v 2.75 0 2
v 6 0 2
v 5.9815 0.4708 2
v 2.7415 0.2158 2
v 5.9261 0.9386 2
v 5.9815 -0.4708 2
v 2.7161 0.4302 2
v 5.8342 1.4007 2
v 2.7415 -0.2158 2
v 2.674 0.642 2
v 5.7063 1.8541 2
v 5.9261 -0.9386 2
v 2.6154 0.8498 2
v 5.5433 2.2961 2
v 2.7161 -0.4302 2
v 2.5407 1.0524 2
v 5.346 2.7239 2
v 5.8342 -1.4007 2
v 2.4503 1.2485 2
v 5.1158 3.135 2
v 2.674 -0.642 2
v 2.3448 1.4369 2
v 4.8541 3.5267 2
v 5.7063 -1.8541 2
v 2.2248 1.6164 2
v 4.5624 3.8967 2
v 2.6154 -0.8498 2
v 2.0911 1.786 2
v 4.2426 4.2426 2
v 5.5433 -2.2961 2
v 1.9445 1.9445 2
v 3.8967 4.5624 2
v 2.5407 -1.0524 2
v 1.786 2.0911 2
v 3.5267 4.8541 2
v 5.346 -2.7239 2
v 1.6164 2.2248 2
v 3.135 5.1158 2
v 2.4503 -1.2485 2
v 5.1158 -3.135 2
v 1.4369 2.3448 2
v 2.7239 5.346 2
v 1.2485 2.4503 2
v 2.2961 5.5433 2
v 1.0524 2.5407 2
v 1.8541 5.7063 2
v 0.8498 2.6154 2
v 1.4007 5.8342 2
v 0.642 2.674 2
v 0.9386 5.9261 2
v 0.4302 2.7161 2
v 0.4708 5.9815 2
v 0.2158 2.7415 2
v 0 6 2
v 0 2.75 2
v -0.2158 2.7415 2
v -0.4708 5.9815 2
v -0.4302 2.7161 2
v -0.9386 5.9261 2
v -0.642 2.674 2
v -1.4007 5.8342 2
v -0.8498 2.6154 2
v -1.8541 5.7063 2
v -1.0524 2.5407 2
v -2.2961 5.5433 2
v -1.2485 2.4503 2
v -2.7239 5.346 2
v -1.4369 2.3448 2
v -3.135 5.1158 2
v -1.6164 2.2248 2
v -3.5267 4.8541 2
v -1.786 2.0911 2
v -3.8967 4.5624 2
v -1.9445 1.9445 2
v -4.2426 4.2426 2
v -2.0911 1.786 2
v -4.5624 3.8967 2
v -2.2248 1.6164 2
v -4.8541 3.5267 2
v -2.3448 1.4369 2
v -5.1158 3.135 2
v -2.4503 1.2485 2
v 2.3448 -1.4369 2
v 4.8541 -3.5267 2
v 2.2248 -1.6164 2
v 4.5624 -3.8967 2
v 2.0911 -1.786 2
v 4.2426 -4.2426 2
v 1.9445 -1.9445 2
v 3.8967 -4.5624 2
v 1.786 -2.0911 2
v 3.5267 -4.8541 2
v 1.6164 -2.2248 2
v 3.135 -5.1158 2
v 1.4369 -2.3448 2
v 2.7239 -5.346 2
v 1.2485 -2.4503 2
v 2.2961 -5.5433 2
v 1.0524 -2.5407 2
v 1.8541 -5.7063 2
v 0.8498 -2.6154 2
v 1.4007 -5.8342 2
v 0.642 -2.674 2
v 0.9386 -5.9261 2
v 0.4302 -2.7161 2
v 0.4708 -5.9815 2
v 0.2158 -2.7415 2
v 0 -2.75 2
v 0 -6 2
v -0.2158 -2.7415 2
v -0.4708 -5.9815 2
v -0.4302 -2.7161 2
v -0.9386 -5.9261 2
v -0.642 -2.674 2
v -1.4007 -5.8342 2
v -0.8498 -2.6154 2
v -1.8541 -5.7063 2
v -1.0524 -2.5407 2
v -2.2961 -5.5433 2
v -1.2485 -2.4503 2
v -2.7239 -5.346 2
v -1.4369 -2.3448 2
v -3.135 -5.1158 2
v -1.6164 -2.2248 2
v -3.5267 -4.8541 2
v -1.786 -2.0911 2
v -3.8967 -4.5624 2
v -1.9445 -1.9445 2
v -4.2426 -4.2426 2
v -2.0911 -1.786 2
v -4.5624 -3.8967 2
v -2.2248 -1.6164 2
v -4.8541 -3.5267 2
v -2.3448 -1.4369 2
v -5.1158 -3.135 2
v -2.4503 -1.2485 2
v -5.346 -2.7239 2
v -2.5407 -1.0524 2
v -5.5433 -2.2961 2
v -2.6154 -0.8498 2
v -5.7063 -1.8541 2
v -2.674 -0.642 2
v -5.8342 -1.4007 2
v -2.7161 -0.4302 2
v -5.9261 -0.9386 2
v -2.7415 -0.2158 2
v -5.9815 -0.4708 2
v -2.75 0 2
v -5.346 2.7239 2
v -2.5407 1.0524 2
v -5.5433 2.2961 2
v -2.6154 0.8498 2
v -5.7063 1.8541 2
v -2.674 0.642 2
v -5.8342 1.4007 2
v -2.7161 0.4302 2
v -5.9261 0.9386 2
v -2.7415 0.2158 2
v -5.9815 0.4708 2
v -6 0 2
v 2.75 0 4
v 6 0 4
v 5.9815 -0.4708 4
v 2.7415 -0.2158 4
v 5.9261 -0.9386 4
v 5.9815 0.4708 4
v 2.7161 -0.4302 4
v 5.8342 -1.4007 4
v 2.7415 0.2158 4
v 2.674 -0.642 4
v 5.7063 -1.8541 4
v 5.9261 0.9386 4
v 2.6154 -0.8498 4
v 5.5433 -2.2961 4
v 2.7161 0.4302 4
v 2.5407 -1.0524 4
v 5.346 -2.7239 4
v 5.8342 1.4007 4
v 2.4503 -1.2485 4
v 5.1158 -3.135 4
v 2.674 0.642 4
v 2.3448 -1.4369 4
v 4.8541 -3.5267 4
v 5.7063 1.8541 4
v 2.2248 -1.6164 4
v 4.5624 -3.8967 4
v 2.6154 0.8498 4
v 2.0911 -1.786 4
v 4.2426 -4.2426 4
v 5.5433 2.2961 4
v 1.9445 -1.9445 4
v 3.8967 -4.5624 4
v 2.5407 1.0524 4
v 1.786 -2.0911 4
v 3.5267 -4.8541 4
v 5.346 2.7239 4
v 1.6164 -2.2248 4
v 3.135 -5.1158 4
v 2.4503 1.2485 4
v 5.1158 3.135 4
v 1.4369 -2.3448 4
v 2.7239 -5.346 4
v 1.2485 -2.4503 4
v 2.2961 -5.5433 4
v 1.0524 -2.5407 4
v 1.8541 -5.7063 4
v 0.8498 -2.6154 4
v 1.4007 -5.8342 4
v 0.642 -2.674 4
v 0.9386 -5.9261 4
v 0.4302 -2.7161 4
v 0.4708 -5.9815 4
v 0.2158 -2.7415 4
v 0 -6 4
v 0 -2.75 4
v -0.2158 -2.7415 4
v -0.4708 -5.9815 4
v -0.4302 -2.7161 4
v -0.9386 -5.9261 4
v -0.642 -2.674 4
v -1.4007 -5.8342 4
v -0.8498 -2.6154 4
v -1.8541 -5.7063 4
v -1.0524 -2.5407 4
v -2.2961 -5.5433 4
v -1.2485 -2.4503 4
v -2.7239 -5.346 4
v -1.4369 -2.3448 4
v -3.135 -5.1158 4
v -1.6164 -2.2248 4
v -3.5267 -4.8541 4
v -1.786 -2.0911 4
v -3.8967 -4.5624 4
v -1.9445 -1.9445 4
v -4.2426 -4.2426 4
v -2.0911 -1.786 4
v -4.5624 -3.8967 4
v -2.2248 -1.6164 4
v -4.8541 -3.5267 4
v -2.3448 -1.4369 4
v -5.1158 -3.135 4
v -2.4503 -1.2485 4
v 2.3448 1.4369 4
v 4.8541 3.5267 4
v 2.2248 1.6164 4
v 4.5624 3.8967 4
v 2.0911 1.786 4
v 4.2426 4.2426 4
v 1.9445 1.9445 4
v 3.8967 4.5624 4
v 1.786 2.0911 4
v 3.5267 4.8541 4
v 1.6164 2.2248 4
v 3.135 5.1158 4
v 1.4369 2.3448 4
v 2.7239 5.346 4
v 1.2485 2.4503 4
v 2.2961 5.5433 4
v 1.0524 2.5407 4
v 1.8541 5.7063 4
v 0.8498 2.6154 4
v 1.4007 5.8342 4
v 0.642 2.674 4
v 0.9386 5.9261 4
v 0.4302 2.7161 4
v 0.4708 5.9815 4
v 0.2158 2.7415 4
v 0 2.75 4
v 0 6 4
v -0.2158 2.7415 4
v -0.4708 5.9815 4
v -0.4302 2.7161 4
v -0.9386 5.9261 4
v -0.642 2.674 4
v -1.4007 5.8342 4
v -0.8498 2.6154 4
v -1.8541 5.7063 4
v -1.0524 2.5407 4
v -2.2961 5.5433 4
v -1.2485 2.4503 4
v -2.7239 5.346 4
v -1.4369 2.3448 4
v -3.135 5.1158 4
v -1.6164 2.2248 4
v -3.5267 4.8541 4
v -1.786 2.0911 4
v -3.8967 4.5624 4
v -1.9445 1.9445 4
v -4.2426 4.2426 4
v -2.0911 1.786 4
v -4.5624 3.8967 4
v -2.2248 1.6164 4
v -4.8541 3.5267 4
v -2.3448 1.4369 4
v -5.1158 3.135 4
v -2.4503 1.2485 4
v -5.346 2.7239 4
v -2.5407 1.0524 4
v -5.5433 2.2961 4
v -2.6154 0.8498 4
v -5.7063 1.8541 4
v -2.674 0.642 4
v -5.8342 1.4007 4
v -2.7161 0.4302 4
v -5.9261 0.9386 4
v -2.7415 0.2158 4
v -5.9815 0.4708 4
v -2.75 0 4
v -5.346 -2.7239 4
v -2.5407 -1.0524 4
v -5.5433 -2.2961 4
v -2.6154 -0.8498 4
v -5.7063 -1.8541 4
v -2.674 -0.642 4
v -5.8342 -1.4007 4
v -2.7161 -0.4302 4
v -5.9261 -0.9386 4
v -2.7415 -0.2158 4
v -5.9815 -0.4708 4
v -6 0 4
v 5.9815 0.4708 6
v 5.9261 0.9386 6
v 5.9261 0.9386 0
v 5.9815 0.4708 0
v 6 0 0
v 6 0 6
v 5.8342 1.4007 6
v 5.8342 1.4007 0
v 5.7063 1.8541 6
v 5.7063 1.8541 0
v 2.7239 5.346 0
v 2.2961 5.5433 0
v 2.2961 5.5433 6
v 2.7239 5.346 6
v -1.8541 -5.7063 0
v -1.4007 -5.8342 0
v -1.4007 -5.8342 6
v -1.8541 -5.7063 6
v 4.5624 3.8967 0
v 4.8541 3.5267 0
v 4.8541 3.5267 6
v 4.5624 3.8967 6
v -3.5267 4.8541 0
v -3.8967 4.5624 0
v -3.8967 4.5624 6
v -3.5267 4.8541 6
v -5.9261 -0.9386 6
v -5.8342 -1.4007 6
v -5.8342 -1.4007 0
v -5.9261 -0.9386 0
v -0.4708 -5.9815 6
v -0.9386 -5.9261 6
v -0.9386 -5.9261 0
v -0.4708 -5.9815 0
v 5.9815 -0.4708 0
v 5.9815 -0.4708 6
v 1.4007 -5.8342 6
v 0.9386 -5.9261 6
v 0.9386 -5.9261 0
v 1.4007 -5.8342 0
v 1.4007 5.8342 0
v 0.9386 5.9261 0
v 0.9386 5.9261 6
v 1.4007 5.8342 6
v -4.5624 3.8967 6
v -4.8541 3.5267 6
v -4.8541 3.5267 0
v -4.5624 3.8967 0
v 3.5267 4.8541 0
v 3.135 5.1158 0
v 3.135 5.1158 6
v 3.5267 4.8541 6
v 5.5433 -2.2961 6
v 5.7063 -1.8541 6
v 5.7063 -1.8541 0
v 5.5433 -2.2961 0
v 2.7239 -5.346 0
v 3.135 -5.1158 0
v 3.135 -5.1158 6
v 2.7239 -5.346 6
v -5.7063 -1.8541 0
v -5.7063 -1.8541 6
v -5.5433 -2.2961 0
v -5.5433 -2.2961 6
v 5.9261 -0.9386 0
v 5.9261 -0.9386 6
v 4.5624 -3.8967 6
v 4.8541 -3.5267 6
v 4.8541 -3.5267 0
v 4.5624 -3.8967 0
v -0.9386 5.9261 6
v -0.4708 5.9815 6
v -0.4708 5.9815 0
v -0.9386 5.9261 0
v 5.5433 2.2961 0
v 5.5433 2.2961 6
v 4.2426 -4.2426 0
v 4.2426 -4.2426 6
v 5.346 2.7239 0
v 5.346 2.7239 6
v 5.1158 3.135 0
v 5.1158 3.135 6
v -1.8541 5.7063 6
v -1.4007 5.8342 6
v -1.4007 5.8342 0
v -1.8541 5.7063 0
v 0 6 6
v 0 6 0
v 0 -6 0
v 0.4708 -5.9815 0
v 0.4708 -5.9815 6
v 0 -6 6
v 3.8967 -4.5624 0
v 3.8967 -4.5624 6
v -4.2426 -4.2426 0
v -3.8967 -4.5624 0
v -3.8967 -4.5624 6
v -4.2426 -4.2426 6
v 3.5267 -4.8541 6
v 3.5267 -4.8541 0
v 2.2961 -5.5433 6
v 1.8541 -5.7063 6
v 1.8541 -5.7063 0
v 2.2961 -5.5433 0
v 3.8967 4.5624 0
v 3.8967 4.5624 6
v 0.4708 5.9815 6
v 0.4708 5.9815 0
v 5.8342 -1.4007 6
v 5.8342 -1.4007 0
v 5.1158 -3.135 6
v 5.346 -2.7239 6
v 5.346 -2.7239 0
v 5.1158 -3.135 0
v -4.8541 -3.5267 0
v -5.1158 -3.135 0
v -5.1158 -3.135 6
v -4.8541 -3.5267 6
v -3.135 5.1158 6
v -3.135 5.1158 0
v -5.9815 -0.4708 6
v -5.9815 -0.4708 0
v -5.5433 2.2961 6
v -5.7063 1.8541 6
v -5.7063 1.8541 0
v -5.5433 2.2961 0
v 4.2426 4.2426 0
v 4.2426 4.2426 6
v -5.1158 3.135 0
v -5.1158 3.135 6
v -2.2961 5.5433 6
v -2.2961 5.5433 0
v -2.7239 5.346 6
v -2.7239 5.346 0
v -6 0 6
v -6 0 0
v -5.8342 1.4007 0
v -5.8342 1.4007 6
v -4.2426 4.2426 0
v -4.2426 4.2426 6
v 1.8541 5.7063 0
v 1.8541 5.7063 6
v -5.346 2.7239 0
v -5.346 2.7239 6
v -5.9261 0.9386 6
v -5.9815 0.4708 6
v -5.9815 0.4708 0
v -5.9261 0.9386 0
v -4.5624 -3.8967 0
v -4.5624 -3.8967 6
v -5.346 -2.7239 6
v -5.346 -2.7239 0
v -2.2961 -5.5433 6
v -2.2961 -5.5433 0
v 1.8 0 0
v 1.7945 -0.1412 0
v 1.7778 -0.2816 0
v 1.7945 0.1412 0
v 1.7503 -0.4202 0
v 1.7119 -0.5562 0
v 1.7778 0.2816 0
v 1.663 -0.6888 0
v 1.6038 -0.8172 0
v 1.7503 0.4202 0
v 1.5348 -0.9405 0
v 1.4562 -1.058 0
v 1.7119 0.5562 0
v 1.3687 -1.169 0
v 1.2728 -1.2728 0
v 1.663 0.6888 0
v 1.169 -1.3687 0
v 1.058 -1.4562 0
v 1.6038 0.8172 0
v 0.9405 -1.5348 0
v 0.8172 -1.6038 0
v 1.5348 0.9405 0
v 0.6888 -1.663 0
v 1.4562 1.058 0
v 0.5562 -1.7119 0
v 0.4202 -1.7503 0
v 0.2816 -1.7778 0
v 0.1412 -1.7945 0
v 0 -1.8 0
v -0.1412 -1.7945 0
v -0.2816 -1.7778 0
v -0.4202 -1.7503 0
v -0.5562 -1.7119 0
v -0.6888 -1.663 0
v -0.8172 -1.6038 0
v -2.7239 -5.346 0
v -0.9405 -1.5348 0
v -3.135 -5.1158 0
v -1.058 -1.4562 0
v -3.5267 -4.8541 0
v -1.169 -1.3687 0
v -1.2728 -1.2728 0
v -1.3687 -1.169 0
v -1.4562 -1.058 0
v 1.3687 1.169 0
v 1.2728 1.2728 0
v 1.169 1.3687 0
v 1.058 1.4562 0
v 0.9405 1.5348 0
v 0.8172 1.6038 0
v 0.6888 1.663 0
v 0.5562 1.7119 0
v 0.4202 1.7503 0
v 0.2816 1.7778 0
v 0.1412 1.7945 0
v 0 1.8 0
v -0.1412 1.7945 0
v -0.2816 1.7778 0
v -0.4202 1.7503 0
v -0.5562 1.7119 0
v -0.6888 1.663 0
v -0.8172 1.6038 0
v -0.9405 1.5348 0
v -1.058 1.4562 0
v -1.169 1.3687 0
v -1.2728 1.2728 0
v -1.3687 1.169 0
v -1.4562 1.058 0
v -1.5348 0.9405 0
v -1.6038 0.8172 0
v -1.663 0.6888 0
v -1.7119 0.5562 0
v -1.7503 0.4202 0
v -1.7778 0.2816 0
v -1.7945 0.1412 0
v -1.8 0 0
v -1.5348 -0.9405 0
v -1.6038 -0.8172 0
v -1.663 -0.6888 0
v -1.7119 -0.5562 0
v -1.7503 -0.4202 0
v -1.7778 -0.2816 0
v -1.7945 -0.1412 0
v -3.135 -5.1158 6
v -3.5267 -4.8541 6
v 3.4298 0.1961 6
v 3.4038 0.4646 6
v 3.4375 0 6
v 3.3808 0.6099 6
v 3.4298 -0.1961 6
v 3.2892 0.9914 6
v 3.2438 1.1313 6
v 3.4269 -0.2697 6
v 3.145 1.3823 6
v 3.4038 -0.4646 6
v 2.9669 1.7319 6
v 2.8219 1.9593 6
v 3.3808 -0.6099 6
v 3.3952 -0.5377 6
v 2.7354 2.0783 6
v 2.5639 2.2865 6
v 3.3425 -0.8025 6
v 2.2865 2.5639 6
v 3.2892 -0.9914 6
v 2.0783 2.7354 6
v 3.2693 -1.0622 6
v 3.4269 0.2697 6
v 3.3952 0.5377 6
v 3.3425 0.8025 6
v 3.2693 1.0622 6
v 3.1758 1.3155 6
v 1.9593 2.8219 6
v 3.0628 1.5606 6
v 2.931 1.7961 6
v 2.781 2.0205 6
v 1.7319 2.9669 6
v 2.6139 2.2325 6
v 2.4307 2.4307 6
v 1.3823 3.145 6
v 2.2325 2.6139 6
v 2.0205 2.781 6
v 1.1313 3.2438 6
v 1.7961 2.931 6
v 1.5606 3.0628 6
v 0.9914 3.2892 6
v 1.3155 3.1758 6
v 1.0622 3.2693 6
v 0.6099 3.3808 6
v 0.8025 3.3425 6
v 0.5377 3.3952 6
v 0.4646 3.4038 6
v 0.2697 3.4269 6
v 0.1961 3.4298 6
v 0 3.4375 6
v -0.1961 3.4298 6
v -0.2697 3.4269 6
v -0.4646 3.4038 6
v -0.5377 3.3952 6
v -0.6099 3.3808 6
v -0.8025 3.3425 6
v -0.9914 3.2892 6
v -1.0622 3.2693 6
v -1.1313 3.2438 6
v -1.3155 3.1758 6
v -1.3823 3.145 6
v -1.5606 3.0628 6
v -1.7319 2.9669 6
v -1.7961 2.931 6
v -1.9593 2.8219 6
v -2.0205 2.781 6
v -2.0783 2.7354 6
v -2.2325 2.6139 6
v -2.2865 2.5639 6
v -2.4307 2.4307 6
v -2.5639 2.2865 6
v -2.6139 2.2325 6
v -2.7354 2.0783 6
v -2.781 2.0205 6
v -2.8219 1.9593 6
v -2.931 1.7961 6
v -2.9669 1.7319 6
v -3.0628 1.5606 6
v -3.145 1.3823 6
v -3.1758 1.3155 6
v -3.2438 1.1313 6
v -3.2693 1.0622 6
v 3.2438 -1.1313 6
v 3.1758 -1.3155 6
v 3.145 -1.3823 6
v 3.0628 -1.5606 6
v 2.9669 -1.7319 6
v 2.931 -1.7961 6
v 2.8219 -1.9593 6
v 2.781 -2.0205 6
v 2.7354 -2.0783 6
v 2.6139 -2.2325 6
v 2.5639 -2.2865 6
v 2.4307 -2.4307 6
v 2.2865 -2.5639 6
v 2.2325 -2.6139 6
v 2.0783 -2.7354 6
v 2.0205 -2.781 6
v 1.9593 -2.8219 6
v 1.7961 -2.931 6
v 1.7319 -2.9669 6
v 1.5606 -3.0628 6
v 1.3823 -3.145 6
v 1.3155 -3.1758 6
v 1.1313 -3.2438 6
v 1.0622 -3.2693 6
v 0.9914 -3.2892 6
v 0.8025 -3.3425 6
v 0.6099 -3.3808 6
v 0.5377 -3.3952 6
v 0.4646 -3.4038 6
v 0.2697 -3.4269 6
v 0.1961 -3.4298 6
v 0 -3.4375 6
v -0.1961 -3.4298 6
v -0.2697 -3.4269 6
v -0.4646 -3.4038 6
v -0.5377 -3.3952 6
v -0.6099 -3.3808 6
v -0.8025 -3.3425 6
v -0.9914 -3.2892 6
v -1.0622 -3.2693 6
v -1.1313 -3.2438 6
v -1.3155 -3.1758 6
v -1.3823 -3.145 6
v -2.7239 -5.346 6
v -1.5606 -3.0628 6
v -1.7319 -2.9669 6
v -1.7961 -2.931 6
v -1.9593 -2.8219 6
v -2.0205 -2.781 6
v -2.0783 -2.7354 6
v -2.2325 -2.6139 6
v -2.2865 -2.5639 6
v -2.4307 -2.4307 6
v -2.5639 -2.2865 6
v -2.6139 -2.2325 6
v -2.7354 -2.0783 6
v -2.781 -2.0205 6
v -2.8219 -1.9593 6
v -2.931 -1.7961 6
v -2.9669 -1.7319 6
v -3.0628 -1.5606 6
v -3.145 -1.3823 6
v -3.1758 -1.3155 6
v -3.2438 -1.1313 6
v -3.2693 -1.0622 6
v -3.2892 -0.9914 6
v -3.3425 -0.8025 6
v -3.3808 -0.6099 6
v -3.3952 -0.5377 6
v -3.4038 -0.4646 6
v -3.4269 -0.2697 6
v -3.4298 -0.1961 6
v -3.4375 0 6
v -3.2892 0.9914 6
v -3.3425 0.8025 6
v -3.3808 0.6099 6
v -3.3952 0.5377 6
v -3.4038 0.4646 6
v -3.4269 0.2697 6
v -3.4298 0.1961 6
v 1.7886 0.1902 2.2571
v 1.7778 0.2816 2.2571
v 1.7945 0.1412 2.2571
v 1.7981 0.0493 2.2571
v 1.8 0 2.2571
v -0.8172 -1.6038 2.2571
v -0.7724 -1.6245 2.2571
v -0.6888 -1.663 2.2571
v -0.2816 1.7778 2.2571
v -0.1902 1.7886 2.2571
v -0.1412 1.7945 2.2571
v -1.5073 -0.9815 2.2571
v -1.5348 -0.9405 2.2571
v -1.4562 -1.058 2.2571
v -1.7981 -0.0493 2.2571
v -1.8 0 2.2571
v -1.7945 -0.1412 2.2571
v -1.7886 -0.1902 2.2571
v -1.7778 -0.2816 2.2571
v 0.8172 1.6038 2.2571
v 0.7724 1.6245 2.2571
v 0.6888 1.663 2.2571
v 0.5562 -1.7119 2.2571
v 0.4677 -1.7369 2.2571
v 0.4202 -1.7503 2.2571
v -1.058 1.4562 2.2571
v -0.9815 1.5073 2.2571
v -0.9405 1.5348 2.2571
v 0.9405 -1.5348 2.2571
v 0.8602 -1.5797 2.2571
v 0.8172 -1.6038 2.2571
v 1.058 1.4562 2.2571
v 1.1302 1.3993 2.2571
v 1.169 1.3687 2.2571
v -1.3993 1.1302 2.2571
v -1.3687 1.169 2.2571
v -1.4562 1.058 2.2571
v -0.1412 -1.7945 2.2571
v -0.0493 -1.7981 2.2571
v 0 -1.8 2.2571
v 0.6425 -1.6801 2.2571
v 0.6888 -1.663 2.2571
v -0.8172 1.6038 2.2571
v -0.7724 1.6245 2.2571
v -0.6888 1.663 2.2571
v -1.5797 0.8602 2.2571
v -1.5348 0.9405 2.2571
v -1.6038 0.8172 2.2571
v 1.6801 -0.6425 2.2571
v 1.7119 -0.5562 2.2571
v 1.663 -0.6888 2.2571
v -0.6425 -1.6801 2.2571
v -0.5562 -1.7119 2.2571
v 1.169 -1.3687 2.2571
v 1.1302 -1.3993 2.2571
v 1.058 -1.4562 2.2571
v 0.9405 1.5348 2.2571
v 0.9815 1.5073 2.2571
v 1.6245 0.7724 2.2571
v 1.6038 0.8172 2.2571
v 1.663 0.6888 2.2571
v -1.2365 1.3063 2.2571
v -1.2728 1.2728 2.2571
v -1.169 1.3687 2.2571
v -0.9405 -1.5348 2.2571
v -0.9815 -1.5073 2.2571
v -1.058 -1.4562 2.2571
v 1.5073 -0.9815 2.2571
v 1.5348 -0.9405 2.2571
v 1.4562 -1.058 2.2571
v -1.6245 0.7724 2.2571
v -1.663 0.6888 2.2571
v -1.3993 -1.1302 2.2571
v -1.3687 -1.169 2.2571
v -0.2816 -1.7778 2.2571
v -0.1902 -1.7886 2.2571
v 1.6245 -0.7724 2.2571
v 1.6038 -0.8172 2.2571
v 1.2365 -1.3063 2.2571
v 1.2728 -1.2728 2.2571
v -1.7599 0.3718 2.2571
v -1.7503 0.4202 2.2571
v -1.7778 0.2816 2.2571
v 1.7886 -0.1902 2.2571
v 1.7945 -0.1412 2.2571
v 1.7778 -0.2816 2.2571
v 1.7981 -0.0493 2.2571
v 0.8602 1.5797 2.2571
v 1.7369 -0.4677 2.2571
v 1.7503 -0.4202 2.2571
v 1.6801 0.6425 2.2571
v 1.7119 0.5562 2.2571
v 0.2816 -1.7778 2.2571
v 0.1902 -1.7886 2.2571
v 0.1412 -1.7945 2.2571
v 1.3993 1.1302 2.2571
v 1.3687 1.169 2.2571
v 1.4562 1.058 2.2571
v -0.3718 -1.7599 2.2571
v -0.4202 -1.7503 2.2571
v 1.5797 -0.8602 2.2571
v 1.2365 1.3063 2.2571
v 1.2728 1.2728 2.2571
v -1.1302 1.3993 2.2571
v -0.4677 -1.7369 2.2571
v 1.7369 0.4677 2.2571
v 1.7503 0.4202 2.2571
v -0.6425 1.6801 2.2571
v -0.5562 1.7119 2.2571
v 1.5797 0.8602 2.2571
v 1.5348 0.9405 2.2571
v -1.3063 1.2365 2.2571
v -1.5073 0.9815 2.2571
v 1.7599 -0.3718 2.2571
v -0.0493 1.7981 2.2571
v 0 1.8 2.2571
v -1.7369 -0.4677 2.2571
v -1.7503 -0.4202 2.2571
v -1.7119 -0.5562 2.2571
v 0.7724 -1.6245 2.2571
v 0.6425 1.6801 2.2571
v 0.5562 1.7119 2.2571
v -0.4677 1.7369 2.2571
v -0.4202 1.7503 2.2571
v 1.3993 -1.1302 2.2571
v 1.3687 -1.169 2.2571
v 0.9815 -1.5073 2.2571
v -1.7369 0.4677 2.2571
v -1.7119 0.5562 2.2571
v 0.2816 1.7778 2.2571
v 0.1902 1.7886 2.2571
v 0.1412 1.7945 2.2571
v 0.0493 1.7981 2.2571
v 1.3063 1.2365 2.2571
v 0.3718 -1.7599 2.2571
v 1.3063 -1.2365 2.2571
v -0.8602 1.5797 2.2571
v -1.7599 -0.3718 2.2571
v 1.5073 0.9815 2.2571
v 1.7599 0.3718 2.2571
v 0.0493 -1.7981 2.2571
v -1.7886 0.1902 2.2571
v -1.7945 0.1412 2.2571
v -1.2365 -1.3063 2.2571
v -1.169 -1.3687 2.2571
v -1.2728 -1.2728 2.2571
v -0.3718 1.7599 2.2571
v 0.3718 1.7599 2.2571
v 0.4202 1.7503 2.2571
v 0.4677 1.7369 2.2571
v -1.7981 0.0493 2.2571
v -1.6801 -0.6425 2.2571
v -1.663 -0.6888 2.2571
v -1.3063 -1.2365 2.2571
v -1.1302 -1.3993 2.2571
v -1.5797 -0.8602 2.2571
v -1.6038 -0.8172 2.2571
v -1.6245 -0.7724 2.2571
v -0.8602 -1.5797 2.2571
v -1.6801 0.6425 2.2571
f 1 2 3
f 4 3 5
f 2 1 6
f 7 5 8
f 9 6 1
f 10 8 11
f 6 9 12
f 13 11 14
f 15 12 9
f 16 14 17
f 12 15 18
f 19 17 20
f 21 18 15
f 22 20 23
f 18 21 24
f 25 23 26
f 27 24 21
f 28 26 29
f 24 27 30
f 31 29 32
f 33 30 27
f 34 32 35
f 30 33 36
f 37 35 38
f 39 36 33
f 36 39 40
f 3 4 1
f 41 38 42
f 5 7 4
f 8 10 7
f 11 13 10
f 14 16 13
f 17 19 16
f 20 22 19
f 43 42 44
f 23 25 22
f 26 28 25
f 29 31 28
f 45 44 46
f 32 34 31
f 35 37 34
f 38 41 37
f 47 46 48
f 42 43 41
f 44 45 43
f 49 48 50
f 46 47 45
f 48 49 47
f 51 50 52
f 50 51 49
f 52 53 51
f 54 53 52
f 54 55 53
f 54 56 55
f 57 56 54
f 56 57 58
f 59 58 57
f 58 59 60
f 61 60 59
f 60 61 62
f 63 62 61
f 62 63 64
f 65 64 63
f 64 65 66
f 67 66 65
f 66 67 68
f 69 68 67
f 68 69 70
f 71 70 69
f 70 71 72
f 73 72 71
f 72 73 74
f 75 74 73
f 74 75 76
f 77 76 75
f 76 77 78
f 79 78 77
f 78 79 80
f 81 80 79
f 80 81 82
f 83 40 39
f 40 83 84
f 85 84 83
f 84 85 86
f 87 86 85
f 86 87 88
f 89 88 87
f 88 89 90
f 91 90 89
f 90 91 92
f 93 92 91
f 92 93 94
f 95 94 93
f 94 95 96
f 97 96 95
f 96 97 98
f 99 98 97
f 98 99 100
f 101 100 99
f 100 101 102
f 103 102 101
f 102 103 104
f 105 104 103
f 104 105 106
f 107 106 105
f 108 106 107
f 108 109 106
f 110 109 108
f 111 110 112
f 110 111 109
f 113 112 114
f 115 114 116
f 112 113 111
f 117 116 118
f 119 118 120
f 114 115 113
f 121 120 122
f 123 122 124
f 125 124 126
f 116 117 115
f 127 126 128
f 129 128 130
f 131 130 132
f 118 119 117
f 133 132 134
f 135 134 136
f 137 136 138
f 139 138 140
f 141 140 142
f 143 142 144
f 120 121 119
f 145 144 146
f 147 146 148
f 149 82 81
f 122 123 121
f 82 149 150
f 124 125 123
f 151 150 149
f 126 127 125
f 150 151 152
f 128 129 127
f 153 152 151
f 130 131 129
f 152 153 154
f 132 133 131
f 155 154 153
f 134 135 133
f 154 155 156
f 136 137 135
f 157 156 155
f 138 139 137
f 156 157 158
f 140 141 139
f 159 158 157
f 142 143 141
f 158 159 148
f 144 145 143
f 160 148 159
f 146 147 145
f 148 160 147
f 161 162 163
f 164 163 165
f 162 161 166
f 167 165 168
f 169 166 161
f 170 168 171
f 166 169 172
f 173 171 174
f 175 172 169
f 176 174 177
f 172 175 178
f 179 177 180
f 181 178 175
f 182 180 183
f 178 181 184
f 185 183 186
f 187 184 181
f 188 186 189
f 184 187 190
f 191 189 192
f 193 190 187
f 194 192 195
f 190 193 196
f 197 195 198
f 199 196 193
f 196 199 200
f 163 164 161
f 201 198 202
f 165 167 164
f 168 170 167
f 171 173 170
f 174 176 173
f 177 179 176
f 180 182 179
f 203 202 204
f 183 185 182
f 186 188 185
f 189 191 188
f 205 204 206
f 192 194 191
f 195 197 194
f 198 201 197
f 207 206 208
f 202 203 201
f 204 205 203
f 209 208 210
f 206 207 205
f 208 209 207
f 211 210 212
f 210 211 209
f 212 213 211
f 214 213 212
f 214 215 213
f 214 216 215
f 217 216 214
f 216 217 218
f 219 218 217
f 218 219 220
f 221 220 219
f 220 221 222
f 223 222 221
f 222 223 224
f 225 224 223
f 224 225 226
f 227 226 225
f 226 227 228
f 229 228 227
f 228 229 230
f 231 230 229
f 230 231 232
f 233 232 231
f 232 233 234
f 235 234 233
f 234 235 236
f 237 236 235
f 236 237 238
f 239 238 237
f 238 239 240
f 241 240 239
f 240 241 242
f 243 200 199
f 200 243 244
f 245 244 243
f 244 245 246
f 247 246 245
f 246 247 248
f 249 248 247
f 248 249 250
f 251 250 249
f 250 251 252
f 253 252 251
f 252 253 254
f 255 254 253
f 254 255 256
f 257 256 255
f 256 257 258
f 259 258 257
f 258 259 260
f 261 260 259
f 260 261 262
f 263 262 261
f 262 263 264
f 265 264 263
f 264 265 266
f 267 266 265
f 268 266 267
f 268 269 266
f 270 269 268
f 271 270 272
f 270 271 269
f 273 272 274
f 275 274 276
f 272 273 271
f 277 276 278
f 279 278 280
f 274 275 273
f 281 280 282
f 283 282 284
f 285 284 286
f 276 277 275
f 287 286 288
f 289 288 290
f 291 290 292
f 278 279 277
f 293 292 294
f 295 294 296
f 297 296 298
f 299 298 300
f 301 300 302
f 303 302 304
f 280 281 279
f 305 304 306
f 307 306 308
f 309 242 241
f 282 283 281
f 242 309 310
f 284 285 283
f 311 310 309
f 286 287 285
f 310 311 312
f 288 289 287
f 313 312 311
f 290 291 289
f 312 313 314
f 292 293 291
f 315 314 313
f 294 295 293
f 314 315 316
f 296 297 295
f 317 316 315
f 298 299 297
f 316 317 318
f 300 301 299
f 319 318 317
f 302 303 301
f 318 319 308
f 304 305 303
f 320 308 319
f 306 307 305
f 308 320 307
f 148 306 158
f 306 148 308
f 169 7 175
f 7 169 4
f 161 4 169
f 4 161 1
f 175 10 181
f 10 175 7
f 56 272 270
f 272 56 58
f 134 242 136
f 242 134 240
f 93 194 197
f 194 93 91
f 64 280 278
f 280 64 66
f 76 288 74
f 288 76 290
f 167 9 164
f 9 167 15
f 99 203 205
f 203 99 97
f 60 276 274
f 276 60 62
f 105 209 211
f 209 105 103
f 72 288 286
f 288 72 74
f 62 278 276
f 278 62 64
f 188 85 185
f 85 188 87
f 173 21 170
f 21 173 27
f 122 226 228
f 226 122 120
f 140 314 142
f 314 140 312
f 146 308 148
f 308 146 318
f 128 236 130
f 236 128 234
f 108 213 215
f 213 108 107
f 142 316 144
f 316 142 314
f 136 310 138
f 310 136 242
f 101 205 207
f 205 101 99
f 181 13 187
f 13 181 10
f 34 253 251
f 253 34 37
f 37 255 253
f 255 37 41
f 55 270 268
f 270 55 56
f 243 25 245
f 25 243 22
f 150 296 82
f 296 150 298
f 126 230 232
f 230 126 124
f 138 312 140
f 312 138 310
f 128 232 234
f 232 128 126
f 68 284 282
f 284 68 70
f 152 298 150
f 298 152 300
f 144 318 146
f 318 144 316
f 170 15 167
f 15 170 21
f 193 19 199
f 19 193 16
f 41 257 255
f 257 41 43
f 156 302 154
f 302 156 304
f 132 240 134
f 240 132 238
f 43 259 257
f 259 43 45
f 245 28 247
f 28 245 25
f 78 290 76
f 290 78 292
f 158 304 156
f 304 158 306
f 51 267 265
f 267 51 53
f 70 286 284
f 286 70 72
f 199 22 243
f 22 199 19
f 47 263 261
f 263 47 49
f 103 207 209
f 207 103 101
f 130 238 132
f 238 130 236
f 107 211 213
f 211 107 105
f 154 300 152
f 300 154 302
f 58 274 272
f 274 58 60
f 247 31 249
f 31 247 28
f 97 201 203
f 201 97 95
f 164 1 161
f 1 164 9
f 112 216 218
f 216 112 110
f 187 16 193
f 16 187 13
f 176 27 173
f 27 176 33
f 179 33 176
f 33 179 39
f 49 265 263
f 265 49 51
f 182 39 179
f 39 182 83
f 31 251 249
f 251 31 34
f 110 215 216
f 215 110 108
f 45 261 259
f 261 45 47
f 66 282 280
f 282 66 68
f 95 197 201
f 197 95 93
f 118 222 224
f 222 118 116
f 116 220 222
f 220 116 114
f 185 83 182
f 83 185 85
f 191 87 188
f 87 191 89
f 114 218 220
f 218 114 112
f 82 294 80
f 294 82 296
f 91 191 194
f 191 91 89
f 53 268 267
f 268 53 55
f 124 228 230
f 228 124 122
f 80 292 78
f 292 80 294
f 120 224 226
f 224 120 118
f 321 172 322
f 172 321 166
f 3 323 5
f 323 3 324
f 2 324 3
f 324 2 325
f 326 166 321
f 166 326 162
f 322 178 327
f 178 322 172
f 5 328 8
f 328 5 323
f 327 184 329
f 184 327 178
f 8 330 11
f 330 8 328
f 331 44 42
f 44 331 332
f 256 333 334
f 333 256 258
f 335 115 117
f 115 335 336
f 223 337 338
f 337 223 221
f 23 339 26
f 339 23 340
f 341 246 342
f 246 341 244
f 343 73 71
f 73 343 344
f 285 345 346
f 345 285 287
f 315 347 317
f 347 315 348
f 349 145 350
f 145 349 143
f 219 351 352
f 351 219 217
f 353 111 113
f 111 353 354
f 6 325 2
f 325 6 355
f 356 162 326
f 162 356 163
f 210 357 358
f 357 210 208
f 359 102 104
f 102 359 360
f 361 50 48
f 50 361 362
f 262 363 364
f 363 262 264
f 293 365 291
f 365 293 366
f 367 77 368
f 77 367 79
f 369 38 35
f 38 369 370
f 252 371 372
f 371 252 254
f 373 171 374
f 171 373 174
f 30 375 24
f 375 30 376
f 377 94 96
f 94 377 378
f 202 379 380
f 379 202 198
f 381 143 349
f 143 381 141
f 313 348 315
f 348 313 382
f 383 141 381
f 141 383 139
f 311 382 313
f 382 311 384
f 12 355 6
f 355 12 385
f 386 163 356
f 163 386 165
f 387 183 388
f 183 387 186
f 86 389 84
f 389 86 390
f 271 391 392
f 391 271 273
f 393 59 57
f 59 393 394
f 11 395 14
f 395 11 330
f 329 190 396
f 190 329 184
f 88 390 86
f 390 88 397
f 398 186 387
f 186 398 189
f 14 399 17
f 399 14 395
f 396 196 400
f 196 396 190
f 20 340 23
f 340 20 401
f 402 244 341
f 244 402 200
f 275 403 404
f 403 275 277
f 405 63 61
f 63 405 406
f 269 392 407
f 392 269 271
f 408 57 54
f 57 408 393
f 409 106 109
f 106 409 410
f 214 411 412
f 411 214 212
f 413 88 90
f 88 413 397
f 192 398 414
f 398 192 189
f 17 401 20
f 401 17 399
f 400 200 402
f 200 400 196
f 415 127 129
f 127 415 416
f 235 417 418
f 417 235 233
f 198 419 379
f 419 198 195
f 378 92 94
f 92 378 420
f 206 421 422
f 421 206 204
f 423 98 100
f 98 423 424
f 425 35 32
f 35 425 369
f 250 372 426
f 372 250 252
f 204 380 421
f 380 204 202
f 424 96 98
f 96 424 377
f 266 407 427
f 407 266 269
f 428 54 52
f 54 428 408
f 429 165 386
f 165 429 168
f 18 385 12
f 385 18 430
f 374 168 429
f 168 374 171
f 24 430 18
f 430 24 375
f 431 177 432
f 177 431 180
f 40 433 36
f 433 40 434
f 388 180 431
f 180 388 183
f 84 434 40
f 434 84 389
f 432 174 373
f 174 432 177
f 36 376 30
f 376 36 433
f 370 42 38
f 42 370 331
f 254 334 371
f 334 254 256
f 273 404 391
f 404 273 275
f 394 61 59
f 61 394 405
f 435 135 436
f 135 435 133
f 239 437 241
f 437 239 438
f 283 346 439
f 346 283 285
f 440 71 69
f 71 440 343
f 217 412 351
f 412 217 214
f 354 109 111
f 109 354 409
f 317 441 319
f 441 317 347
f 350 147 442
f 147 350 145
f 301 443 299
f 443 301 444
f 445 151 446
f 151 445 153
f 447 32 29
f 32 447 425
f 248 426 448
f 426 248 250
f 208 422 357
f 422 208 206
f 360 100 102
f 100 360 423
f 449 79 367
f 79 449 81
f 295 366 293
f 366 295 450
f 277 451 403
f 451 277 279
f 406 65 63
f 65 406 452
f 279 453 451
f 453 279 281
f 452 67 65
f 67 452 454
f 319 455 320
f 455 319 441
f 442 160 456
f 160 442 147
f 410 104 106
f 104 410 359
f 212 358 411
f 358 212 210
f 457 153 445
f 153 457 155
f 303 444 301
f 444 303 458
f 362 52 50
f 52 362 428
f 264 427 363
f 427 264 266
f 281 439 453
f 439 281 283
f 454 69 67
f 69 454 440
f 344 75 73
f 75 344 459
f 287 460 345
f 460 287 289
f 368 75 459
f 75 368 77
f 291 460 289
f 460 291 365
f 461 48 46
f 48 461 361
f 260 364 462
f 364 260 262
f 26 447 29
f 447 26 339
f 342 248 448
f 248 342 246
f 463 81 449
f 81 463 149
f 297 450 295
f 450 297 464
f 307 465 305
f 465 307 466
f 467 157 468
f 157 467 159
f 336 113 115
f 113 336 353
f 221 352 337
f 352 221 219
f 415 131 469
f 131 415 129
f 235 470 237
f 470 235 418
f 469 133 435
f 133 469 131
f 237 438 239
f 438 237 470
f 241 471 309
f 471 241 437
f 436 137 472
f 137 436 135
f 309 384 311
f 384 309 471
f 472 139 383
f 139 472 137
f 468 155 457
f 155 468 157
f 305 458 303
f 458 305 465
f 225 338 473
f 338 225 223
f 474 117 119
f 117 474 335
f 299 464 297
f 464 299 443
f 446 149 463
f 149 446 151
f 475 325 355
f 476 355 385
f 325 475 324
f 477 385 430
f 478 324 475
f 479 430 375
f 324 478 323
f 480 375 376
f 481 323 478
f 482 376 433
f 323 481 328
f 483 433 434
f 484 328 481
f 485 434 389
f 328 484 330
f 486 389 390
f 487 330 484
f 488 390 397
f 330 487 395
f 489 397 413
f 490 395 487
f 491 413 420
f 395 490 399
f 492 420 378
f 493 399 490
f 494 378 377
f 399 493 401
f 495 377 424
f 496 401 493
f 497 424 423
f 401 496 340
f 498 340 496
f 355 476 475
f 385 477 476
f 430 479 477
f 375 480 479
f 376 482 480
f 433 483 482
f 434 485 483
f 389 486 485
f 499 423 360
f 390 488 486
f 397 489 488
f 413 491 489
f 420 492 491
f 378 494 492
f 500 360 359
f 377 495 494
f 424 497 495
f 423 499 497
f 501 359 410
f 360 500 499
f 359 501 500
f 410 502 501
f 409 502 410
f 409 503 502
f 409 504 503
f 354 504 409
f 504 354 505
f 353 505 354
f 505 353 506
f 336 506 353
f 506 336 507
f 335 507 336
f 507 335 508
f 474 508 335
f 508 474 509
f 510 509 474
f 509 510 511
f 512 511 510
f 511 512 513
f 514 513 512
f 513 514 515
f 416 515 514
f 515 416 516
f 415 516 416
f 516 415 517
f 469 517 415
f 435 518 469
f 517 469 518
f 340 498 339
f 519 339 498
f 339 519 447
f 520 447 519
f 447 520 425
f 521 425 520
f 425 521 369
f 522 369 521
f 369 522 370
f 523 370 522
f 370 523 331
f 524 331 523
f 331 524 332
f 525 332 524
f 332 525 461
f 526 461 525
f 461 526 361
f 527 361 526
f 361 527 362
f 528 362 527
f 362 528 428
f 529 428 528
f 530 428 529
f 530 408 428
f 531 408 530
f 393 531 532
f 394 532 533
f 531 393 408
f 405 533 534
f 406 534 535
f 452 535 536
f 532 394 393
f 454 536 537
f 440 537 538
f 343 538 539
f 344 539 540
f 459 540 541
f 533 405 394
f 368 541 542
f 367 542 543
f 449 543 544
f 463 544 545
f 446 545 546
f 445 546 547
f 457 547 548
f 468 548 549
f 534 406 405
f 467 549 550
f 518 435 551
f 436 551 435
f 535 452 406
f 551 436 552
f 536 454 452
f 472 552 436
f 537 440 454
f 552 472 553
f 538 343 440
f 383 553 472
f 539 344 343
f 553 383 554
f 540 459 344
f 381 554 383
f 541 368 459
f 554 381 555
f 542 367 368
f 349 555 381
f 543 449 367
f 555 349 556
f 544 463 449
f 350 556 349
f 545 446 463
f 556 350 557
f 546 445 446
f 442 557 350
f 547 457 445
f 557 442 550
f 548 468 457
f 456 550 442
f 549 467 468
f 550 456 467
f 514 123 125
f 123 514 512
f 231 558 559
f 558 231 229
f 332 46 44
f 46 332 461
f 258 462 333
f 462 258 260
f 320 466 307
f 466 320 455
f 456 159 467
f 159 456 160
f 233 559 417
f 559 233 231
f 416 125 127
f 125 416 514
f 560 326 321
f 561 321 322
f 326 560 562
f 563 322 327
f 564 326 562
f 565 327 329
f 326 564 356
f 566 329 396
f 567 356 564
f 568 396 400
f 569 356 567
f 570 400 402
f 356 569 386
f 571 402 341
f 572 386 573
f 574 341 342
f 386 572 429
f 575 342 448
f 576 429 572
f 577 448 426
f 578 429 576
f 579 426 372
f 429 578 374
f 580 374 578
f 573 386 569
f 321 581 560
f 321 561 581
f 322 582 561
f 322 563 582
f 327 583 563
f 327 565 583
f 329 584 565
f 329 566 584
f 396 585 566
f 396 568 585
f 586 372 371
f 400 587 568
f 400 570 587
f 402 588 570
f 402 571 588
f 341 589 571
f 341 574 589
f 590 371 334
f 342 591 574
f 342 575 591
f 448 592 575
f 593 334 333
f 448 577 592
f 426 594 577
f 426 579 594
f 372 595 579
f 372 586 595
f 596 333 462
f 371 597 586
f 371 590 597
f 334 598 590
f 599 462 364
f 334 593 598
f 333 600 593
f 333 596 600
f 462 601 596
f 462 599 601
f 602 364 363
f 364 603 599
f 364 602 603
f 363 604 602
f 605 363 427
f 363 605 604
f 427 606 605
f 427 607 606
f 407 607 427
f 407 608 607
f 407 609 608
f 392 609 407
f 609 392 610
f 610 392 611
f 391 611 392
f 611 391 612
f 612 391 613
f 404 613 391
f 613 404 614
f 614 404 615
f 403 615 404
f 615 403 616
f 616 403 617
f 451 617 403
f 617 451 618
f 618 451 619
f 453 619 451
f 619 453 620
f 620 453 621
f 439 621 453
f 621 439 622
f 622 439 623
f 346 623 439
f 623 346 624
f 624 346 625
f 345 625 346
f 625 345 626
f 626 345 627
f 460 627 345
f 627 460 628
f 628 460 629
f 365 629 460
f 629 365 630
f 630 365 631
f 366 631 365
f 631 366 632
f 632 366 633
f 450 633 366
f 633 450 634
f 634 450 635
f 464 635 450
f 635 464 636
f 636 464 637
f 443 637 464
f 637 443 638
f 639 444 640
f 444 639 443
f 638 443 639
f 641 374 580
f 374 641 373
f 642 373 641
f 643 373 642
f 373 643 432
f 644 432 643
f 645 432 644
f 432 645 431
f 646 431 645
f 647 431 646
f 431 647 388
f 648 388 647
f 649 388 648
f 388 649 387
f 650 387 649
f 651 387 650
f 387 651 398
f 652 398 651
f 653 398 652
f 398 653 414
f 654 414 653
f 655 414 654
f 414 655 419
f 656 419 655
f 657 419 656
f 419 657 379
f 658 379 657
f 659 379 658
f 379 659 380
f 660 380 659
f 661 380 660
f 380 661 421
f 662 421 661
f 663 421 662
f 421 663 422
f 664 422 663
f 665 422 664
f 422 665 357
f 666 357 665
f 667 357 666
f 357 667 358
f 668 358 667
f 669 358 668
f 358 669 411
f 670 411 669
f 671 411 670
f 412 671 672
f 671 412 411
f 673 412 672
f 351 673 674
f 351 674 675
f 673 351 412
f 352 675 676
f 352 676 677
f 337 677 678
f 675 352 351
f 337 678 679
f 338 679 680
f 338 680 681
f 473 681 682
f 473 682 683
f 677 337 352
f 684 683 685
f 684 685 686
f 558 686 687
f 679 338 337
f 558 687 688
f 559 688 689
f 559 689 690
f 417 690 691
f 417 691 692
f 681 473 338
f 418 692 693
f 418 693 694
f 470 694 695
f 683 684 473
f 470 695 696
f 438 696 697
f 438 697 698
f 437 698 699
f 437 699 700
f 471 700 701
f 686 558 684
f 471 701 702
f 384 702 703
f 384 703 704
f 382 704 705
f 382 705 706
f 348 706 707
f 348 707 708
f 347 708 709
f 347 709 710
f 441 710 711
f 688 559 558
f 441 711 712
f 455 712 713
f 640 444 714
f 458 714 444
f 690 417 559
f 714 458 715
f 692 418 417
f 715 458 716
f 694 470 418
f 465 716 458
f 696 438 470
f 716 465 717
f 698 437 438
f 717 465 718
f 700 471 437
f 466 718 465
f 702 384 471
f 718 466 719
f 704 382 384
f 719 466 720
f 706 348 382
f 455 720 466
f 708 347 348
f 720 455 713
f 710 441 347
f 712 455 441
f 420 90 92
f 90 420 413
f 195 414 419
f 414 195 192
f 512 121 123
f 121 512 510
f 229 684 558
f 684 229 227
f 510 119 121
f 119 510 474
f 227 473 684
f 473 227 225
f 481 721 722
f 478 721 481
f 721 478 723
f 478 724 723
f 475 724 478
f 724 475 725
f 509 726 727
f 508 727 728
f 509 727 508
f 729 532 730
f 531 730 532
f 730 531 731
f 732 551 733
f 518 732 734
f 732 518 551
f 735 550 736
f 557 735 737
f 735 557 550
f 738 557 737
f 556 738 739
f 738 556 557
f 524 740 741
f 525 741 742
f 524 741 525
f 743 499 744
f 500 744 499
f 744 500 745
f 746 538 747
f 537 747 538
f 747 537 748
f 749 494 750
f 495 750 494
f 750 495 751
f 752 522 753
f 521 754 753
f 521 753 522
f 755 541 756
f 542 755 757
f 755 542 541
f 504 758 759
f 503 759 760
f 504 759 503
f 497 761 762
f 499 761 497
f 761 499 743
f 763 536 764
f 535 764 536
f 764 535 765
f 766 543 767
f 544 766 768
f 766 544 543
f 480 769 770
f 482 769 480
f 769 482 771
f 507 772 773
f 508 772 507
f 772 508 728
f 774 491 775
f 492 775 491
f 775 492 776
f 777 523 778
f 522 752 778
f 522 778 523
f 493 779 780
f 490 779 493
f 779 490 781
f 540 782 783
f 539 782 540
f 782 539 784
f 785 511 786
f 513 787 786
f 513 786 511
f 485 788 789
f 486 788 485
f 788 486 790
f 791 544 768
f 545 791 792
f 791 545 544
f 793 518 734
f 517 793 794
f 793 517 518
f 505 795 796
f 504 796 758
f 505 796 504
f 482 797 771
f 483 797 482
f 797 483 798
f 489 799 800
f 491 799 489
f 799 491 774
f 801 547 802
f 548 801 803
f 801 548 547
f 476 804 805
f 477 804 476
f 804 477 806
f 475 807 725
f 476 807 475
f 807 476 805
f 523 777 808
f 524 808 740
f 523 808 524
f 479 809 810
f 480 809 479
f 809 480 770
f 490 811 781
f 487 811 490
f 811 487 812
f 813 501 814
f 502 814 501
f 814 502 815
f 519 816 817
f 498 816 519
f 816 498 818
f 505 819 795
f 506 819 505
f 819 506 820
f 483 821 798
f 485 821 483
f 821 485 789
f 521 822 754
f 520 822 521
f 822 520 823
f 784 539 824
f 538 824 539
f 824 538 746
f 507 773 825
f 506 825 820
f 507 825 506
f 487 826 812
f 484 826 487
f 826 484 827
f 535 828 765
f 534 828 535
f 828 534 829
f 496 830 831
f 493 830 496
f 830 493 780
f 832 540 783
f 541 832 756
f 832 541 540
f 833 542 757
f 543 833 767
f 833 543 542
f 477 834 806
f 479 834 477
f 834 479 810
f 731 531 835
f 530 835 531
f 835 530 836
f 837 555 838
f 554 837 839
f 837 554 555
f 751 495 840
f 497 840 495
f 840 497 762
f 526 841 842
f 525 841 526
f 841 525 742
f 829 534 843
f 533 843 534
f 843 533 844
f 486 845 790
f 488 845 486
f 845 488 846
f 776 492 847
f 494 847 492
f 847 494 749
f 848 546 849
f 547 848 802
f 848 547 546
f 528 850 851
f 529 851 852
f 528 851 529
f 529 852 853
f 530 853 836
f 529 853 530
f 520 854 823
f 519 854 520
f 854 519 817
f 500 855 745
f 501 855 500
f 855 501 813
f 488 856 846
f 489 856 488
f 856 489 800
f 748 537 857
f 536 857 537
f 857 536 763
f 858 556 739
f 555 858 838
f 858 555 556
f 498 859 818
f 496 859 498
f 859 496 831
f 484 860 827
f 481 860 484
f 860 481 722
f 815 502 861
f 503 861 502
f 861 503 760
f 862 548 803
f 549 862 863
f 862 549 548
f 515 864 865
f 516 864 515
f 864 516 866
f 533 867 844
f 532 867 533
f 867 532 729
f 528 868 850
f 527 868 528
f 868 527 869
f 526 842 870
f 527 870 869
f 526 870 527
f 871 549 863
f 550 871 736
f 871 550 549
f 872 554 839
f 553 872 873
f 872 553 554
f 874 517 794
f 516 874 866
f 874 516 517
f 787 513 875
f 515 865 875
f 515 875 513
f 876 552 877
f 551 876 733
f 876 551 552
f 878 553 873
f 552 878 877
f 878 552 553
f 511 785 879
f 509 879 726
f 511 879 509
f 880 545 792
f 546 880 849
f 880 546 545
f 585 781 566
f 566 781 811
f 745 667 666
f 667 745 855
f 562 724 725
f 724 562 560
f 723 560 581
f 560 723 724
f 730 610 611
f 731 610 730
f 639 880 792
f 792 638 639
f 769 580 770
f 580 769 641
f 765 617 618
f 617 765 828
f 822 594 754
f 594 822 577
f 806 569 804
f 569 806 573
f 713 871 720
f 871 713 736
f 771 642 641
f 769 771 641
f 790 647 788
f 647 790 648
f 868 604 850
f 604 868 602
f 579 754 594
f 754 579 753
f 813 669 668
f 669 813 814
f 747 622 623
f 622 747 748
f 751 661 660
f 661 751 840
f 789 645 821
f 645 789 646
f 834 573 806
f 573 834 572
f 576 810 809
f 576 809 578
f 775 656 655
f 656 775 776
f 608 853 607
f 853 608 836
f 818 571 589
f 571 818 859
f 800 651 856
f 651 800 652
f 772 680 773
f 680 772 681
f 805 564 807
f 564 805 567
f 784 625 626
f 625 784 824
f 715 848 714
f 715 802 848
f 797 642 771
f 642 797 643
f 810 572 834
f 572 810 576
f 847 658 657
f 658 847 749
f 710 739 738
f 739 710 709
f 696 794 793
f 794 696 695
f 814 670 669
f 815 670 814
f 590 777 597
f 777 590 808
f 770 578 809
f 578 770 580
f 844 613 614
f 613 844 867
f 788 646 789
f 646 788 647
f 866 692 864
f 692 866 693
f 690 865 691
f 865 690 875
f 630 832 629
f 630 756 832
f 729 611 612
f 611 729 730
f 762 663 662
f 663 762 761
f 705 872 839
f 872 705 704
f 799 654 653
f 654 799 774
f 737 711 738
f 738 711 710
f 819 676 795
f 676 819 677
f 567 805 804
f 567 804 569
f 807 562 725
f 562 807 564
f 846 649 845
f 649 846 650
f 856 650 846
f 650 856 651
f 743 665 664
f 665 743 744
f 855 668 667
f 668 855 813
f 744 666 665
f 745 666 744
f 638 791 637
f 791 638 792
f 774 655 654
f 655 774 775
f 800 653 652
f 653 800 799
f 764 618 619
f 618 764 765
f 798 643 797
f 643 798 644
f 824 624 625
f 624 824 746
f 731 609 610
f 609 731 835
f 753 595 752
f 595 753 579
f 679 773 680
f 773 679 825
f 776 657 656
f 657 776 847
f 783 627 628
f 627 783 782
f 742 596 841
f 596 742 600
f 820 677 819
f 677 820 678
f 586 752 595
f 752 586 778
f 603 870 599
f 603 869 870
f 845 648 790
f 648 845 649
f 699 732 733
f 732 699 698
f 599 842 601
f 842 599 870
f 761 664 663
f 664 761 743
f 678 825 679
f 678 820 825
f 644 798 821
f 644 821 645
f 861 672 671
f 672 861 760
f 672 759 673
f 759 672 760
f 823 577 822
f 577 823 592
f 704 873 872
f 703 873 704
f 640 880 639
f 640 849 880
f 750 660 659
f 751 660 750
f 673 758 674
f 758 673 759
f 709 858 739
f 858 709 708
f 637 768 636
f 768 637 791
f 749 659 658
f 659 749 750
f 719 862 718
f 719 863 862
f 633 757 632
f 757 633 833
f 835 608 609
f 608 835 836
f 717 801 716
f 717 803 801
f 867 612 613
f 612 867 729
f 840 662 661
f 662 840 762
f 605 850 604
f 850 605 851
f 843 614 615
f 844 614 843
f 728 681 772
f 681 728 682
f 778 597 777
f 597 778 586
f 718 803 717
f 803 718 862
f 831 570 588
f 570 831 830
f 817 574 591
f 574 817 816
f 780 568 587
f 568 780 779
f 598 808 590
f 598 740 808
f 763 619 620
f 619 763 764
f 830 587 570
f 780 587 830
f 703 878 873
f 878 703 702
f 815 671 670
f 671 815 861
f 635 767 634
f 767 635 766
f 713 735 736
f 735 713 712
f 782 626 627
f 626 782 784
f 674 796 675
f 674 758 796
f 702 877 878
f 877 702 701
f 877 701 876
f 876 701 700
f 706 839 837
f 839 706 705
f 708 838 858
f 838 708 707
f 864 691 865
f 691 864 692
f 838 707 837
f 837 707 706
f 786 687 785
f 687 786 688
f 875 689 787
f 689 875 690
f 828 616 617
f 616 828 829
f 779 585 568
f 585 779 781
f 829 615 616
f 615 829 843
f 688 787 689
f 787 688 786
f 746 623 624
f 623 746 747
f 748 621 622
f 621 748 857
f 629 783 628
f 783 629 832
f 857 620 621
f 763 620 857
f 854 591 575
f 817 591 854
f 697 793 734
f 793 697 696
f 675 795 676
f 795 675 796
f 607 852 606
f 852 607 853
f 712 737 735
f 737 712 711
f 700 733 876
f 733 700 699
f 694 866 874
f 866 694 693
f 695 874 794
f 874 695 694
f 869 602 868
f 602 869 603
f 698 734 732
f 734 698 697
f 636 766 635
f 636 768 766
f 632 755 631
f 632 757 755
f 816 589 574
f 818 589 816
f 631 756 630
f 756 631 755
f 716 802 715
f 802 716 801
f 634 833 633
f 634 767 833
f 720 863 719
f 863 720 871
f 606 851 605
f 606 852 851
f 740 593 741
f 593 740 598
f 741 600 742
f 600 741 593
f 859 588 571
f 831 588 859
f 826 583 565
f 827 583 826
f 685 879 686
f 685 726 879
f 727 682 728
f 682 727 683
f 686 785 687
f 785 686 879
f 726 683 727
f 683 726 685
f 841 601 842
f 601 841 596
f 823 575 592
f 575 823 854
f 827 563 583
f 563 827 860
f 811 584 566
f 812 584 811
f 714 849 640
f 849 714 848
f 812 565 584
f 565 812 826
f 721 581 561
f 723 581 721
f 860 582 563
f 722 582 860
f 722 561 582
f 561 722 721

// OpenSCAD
//*******************************************************************************
// PARAMETRIC GROMMET 
//------------------------
// Written by Mark C. 2017
// Built using OpenSCAD 2015.03-2
// V1 : Released 
// 
//*******************************************************************************
//-------------------------------------------------------------------------------
//                             Description
//-------------------------------------------------------------------------------
//Type...: Utility Part
//Notes..: Parametric Grommet
// Material ... : Print from TPU Flexible
//-------------------------------------------------------------------------------
//                             PARAMETERS
//-------------------------------------------------------------------------------

// Overall Grommet Diameter
Overall_Diameter = 12;
// Thickness of the Grommet
Grommet_Thickness = 6;
// Cable Hole Diameter 
Cable_Hole_Diameter = 3.5 ;
// Cable Hole Depth : Default = 20 Set this to 0 if you want a blanked Grommet to drill out later
Cable_Hole_Depth = 20 ;
// Adjust the Depth of the outer cable hole chamfer Default is 3
Cable_Hole_Chamfer_Depth = 2.5;
// Specify the Chassis thickness you are plugging through - The Chassis Hole size = Cable_Hole_Diameter + 2
Chassis_Thickness = 2;
Chassis_Hole_Diameter = Cable_Hole_Diameter + 2;
// Adjust Fitting tolerance if needed to allow for 3D Printer drift
Fitting_Tolerance = 0.1;
// Smoothing Factor for a Higher Resolution Mesh Output
Smoothing_Factor = 80;

$fn = Smoothing_Factor;

//-------------------------------------------------------------------------------
//                             MAIN CODE
//-------------------------------------------------------------------------------
difference(){
   cylinder (h=Grommet_Thickness , d1=Overall_Diameter , d2=Overall_Diameter); // Overall Grommet
     
   translate([0,0,-5]) cylinder(h=Cable_Hole_Depth , d=Cable_Hole_Diameter+Fitting_Tolerance); // Cable Hole
    
    difference(){
     translate([0,0,Grommet_Thickness/2-Chassis_Thickness/2]) cylinder (h=Chassis_Thickness , d1=Overall_Diameter+5 , d2=Overall_Diameter+5); // Chassis Groove
    translate([0,0,-5]) cylinder(h=50 , d=Chassis_Hole_Diameter); // Chassis Groove Inner Wall
    }
    translate([0,0,Grommet_Thickness-5]) cylinder(h=20,d1=Cable_Hole_Chamfer_Depth,d2=20); // Outer Chamfer
};
